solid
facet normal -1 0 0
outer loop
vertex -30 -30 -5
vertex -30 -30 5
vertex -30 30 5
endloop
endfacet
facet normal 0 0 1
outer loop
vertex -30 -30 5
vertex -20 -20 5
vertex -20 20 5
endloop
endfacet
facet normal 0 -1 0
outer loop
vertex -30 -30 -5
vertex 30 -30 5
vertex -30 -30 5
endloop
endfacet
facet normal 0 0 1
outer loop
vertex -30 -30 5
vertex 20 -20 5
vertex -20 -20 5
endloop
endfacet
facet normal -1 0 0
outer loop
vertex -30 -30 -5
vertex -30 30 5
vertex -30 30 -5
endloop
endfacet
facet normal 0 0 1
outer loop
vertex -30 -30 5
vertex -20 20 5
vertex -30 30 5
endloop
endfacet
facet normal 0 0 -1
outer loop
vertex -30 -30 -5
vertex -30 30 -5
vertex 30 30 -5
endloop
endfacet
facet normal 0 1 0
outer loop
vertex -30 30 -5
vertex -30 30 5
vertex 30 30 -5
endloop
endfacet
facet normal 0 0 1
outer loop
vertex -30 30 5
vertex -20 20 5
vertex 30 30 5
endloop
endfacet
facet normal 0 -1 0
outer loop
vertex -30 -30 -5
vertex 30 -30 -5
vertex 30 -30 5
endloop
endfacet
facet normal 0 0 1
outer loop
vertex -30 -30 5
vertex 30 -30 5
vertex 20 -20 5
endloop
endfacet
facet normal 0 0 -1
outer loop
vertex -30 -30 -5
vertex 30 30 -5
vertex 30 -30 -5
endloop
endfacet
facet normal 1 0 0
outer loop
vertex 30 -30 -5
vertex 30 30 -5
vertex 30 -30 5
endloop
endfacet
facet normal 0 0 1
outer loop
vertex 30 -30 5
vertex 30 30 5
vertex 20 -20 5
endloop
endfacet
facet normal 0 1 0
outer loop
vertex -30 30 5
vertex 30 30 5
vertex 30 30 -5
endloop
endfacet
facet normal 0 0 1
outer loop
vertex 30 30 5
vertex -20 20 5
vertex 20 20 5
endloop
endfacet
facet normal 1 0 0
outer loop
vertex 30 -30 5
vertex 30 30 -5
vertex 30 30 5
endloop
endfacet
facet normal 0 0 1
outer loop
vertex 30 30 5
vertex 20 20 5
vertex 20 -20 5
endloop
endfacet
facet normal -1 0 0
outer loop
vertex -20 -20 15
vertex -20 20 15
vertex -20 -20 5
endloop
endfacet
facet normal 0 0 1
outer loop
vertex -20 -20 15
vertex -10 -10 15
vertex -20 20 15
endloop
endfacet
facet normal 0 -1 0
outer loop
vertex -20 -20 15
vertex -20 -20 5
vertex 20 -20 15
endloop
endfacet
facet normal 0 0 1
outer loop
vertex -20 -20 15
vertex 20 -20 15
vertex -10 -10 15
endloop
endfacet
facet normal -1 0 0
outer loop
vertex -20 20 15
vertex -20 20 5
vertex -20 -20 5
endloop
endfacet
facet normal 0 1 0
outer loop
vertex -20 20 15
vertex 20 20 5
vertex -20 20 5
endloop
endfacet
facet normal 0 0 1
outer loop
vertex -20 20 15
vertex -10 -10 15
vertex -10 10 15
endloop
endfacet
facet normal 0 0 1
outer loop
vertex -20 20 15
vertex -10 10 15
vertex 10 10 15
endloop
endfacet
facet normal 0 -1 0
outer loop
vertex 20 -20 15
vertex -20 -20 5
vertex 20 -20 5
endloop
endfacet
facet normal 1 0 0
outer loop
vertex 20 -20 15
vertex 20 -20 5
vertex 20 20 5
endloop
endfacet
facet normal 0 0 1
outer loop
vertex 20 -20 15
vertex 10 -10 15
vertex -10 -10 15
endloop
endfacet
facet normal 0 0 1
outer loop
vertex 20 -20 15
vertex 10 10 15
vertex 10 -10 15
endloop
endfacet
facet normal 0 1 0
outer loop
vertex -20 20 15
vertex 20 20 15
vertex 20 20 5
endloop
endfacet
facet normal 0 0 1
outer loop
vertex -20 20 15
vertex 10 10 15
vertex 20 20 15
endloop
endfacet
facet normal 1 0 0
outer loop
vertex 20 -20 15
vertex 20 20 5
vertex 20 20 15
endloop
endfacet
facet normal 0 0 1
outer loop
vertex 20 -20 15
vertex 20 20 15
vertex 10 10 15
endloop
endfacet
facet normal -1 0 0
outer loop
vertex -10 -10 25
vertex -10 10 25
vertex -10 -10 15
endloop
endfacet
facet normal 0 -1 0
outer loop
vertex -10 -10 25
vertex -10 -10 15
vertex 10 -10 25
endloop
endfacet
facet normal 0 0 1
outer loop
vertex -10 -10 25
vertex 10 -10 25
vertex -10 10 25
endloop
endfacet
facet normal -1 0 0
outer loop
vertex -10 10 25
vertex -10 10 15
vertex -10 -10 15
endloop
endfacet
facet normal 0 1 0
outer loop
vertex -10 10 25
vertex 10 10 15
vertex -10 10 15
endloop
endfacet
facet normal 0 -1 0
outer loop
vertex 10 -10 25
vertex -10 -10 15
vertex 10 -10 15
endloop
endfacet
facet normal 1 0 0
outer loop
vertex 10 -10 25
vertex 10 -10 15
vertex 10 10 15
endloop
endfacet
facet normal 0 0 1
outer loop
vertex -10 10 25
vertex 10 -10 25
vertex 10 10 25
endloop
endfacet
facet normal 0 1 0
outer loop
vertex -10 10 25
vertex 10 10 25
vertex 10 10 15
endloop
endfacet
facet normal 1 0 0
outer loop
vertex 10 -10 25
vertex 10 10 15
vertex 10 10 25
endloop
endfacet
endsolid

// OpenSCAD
// 3段の階段状ピラミッド

// 1段目: 60mm × 60mm × 高さ10mm
translate([0, 0, 0])
    cube([60, 60, 10], center=true);

// 2段目: 40mm × 40mm × 高さ10mm
translate([0, 0, 10])
    cube([40, 40, 10], center=true);

// 3段目: 20mm × 20mm × 高さ10mm
translate([0, 0, 20])
    cube([20, 20, 10], center=true);
